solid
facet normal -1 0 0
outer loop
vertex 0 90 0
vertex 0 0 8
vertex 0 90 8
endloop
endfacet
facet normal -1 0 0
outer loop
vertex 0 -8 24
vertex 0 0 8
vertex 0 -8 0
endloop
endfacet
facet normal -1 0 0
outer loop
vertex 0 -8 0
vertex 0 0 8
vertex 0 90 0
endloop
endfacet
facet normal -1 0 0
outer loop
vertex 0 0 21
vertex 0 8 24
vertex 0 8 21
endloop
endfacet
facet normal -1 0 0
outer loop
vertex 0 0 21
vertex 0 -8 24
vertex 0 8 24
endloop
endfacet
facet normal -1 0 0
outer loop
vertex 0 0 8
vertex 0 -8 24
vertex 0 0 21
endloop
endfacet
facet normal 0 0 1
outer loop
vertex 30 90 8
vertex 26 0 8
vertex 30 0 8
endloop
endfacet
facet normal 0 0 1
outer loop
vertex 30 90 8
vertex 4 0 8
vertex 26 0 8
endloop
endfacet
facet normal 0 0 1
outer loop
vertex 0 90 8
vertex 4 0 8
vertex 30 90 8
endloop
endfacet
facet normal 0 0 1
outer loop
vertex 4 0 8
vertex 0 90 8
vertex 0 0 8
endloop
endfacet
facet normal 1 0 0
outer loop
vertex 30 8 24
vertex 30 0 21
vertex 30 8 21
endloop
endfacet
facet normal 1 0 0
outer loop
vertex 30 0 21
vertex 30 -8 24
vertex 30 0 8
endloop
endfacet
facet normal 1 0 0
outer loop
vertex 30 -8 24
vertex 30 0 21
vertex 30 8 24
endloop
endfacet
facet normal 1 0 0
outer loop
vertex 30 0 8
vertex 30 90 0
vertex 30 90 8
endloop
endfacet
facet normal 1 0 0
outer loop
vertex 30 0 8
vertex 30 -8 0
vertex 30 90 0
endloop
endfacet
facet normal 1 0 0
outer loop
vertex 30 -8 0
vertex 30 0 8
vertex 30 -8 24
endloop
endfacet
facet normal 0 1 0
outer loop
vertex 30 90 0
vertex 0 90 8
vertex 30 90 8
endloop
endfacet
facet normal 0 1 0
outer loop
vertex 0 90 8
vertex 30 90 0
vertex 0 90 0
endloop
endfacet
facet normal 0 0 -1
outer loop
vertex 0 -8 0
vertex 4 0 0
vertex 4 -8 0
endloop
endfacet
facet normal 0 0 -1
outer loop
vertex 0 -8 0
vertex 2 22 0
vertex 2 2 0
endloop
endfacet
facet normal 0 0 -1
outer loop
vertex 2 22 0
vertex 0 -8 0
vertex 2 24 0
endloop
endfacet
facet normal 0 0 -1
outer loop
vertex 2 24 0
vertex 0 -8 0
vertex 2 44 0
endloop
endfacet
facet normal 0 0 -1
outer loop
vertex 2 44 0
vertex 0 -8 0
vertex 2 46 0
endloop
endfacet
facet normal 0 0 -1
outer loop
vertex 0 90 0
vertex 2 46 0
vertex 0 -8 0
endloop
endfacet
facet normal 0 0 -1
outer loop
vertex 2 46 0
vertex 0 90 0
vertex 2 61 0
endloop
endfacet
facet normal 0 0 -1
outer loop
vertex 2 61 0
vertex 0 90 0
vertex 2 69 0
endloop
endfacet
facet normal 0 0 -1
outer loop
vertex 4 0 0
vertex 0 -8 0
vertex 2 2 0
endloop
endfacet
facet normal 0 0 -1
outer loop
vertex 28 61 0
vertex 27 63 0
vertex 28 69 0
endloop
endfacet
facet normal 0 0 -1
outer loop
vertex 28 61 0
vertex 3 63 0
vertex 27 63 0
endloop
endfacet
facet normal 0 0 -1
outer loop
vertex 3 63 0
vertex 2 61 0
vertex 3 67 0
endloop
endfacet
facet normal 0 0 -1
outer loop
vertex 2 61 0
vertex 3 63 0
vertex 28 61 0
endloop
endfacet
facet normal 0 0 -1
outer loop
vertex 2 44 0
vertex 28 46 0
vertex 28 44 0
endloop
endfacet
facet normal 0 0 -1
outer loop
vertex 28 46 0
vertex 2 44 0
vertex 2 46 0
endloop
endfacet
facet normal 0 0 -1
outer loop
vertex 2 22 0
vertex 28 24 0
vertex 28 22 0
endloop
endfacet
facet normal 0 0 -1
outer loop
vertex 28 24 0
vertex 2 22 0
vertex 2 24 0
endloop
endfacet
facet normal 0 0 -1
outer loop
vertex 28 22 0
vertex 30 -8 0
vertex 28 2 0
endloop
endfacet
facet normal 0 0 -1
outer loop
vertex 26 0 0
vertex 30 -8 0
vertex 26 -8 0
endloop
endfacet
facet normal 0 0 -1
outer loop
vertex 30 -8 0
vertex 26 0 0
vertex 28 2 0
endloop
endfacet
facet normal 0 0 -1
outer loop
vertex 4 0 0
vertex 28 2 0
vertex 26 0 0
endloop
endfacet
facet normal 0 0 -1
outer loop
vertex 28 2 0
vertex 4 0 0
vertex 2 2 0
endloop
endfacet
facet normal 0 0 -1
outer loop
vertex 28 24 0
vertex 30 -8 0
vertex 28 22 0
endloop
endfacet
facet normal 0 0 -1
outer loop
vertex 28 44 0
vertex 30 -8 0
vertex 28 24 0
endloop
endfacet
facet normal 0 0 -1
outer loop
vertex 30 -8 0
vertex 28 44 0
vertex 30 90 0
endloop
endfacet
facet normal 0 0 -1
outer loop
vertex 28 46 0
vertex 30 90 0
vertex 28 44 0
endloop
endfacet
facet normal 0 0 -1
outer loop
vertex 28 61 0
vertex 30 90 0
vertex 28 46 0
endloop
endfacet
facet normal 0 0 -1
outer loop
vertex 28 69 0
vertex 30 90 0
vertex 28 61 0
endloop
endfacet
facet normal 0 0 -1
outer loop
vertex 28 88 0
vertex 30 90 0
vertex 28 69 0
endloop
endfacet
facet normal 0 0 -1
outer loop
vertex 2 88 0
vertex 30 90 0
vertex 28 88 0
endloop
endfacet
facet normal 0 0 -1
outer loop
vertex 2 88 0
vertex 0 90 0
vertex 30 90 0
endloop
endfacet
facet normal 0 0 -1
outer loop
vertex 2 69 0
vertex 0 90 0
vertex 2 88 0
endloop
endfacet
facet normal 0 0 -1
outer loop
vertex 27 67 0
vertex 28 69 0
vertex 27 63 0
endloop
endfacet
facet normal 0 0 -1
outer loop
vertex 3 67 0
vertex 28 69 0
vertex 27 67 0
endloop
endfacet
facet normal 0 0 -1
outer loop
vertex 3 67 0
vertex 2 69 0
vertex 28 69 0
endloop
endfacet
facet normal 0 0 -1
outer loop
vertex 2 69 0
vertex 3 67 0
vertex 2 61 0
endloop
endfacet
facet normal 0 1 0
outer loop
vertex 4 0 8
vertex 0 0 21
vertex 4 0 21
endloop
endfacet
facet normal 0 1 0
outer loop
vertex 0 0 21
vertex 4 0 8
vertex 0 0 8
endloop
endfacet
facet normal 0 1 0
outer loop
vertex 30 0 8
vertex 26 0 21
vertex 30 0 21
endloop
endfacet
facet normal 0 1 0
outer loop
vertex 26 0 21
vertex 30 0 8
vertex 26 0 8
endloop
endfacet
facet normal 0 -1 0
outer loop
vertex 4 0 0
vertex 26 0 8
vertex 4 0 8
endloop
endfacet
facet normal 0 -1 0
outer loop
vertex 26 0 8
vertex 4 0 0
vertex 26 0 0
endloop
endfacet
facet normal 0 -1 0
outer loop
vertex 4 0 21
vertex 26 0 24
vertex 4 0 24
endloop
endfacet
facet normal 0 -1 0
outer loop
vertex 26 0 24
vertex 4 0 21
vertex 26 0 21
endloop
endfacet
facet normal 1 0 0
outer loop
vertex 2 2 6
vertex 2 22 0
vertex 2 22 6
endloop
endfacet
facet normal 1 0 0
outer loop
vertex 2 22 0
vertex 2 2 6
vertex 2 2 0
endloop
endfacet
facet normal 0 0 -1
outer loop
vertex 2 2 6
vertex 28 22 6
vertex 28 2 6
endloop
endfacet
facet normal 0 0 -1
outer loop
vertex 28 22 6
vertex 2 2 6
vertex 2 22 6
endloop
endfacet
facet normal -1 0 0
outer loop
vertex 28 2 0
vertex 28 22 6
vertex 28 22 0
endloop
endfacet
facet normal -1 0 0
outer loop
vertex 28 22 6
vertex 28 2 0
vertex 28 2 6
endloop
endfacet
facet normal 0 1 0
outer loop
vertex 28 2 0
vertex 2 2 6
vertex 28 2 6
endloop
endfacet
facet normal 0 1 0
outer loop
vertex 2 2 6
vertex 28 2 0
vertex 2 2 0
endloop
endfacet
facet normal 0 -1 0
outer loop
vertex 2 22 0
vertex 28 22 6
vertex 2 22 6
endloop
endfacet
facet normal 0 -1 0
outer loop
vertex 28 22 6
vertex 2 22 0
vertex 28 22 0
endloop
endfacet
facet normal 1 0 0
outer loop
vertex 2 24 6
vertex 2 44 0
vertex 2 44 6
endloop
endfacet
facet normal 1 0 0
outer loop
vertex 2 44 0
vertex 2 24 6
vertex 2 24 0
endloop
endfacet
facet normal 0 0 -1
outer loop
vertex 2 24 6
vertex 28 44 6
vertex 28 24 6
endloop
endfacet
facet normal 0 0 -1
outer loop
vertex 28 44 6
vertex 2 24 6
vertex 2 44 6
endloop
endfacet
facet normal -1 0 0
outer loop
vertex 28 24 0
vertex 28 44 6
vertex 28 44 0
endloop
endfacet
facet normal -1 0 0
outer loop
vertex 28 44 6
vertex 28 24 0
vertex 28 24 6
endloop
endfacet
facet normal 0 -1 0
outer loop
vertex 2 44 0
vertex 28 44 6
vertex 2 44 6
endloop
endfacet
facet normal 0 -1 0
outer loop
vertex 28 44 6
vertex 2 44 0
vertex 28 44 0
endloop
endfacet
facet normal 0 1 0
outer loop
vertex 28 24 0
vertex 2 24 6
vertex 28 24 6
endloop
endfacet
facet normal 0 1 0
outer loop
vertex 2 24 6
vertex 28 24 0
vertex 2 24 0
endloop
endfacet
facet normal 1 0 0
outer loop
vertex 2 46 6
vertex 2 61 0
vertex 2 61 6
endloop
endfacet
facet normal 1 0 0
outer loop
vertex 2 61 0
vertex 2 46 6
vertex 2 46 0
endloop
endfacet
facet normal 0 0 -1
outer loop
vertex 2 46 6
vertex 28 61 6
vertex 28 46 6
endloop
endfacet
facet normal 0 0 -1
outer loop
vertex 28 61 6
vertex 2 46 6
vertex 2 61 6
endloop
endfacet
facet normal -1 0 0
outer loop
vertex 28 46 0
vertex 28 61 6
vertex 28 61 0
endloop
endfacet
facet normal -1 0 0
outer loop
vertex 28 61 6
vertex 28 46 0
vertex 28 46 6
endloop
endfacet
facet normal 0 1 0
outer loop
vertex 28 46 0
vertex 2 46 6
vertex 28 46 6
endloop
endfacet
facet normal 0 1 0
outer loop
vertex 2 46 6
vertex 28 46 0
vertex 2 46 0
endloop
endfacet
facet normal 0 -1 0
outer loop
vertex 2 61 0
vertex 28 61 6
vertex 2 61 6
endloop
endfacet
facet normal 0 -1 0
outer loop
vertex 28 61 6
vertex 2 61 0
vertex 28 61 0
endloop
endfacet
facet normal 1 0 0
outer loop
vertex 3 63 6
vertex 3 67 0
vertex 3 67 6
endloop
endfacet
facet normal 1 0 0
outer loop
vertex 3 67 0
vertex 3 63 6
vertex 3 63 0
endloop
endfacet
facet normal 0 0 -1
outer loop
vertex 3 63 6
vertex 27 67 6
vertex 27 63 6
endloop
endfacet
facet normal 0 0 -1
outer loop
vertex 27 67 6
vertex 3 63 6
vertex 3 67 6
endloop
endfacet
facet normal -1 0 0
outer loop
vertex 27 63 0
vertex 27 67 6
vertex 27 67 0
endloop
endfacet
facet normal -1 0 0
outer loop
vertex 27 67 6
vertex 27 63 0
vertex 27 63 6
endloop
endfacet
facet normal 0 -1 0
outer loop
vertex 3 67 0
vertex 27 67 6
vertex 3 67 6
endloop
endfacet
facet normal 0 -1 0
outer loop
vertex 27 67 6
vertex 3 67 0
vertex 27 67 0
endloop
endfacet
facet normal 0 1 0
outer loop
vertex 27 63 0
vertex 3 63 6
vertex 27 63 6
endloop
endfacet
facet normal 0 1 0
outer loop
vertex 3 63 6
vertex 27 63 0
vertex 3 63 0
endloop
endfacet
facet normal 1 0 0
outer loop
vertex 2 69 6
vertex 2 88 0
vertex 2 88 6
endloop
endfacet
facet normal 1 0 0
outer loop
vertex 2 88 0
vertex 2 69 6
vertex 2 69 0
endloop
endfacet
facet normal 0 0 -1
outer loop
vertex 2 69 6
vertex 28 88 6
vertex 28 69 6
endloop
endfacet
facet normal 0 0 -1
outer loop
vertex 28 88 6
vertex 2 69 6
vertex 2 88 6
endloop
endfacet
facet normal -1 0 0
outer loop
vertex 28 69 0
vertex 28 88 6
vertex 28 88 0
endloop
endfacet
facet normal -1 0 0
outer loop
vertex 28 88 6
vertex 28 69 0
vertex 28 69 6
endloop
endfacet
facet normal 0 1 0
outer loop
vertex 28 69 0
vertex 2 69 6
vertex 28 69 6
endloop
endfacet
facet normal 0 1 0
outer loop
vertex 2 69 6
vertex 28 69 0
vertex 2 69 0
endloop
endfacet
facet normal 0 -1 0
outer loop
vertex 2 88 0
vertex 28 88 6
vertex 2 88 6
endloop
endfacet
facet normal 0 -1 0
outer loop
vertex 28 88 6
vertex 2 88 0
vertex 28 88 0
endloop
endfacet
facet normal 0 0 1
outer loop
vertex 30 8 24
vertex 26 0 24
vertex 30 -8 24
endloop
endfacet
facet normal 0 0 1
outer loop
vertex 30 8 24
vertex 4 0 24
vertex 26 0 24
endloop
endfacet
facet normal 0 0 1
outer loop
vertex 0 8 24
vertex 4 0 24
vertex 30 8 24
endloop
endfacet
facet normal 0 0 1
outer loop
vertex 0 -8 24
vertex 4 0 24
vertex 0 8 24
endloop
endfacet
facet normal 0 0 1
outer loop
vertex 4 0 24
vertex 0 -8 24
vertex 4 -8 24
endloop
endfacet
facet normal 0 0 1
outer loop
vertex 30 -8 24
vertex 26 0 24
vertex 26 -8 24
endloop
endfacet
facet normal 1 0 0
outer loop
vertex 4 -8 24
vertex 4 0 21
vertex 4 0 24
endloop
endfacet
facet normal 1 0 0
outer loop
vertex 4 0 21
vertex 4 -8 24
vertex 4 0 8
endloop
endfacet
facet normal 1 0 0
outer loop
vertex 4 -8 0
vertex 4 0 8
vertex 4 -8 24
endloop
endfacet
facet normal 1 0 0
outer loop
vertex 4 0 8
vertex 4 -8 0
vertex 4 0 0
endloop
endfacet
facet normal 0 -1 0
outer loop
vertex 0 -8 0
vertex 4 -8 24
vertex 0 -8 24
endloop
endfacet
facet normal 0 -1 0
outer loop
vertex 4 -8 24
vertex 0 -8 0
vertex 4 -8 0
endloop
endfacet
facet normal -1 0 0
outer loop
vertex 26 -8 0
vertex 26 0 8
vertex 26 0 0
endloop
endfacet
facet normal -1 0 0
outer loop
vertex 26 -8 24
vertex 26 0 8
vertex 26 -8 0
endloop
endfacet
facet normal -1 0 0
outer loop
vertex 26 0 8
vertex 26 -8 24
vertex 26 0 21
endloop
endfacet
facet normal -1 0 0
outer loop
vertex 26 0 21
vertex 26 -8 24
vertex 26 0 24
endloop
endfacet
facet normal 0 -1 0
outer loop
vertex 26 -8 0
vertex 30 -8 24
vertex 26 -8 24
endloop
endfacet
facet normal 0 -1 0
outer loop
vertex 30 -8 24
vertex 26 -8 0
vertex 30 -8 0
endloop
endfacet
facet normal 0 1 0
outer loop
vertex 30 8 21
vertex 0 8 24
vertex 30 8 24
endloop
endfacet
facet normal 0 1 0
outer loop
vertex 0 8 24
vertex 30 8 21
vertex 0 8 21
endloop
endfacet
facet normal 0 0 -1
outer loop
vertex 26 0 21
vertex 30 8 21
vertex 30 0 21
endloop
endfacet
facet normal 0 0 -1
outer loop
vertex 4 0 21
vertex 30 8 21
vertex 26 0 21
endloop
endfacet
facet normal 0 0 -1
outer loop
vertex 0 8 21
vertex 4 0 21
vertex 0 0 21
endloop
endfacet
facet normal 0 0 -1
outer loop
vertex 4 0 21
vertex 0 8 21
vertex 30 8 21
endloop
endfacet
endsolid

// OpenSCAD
difference()
{
    translate([0,0,0]) cube([30,90,8]);
    translate([2,2,0]) cube([26,20,6]);
    translate([2,2+20+2,0]) cube([26,20,6]);
    translate([2,2+20+2+20+2,0]) cube([26,15,6]);
    translate([3,2+20+2+20+2+15+2,0]) cube([24,4,6]);
    translate([2,2+20+2+20+2+15+2+4+2,0]) cube([26,19,6]);
}

translate([0,-8,0]) cube([4,8,13+8+3]);
translate([26,-8,0]) cube([4,8,13+8+3]);

translate([0,0,13+8]) cube([30,8,3]);
